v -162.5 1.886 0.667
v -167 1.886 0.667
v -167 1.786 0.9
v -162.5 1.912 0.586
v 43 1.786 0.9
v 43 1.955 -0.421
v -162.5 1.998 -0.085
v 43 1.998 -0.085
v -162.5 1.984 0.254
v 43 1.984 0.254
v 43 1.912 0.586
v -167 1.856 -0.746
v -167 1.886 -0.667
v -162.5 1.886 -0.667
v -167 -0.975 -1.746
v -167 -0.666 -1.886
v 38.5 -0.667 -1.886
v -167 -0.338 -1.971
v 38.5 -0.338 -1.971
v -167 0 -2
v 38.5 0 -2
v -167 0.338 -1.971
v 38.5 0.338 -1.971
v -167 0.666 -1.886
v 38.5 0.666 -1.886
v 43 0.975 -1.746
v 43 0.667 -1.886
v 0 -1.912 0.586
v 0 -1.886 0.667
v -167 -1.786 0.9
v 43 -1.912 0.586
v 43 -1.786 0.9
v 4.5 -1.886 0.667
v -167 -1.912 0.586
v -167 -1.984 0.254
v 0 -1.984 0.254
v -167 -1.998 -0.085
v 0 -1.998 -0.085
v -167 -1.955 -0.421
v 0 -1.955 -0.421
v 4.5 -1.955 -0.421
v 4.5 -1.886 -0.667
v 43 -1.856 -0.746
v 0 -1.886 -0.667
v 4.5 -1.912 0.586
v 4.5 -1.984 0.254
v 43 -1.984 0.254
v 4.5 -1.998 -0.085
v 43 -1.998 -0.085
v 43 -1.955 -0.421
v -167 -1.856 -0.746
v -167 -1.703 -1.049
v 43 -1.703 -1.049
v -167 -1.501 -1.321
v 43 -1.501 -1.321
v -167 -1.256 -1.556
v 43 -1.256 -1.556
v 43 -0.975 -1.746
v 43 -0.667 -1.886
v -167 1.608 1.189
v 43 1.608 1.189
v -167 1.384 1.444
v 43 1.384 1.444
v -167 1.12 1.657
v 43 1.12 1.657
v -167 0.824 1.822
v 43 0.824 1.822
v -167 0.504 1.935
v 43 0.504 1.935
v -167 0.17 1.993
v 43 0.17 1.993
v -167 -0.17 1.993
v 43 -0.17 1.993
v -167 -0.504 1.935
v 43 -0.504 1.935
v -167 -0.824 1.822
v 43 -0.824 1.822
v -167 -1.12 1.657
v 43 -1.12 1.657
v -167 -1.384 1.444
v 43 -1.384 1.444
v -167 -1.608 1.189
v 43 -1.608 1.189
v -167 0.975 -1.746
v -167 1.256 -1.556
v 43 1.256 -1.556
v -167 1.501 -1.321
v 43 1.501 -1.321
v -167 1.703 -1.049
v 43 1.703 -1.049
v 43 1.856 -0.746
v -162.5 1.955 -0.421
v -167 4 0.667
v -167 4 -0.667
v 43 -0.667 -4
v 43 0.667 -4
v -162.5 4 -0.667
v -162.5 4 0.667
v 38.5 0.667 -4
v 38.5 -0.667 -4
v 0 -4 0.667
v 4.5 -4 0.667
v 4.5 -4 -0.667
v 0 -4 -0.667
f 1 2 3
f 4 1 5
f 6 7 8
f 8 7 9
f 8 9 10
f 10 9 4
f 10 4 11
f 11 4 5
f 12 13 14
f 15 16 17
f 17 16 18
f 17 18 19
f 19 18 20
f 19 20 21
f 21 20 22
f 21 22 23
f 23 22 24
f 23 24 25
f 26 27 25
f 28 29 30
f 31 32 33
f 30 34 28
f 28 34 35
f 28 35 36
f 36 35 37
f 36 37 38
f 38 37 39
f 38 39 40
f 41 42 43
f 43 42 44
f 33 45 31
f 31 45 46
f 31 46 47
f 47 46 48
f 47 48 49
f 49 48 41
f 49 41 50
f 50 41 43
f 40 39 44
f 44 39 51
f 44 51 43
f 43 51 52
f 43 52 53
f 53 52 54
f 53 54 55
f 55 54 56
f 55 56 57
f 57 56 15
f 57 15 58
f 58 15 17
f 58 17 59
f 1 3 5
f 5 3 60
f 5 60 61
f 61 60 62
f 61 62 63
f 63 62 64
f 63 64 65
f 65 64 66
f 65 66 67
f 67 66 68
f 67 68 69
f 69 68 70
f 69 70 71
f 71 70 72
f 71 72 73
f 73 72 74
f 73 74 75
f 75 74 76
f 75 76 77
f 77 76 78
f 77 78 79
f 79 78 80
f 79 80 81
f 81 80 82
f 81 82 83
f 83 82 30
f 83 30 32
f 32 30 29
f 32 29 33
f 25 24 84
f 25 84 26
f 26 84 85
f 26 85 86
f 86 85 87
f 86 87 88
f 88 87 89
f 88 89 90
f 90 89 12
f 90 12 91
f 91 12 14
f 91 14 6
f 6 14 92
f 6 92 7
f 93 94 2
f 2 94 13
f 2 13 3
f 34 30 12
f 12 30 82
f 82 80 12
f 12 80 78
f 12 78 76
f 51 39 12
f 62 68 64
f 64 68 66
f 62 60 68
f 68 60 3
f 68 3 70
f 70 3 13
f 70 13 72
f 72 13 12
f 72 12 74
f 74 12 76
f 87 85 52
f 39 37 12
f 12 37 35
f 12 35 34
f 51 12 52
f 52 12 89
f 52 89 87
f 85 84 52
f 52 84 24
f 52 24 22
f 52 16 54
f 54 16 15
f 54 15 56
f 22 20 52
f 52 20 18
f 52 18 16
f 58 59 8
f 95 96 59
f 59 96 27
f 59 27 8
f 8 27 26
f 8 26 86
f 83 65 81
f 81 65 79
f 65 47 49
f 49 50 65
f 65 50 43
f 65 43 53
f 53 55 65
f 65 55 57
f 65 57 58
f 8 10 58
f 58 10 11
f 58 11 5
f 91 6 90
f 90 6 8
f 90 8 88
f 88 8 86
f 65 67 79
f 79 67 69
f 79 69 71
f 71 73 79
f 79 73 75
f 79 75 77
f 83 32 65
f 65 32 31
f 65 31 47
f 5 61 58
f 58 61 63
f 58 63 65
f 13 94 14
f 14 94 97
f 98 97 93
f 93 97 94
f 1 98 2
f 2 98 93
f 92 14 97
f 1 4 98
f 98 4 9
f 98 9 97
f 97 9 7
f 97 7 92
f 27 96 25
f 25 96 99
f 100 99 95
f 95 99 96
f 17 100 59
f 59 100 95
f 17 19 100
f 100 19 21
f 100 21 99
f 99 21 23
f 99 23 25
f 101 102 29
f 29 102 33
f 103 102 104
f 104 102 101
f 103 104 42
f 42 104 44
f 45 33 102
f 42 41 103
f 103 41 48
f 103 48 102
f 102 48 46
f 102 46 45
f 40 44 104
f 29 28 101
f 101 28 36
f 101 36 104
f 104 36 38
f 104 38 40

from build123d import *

# Parameters (mm, degrees)
SHAFT_DEPTH      = 43
SHAFT_DEPTH_BACK = 167
SKETCH1_R        = 2
SKETCH2_W        = 1.333333334
SKETCH2_H        = 4
SHAFT_M_DEPTH    = 4.5
SKETCH4_W        = 4
SKETCH4_H        = 1.333333334
SHAFT_R_DEPTH    = 4.5
SKETCH6_W        = 1.333333334
SKETCH6_H        = 4
SHAFT_L_DEPTH    = 4.5


with BuildPart() as part:
    # Sketch1 → Shaft (new, two sides: drawn at the far end of the back side and taken through both)
    with BuildSketch(Plane(origin=(0, 0, 0), x_dir=(0, 0, -1), z_dir=(1, 0, 0)).offset(-SHAFT_DEPTH_BACK)):
        Circle(SKETCH1_R)
    extrude(amount=SHAFT_DEPTH + SHAFT_DEPTH_BACK)

    # Sketch2 → Shaft M (add)
    with BuildSketch(Plane.ZY.offset(167)):
        with Locations((0, 2)):
            Rectangle(SKETCH2_W, SKETCH2_H)
    extrude(amount=-SHAFT_M_DEPTH)

    # Sketch4 → Shaft R (add)
    with BuildSketch(Plane(origin=(43, 0, 0), x_dir=(0, 0, -1), z_dir=(1, 0, 0))):
        with Locations((2, 0)):
            Rectangle(SKETCH4_W, SKETCH4_H)
    extrude(amount=-SHAFT_R_DEPTH)

    # Sketch6 → Shaft L (add)
    with BuildSketch(Plane(origin=(0, 0, 0), x_dir=(0, 0, -1), z_dir=(1, 0, 0))):
        with Locations((0, -2)):
            Rectangle(SKETCH6_W, SKETCH6_H)
    extrude(amount=SHAFT_L_DEPTH)


solid = part.part
